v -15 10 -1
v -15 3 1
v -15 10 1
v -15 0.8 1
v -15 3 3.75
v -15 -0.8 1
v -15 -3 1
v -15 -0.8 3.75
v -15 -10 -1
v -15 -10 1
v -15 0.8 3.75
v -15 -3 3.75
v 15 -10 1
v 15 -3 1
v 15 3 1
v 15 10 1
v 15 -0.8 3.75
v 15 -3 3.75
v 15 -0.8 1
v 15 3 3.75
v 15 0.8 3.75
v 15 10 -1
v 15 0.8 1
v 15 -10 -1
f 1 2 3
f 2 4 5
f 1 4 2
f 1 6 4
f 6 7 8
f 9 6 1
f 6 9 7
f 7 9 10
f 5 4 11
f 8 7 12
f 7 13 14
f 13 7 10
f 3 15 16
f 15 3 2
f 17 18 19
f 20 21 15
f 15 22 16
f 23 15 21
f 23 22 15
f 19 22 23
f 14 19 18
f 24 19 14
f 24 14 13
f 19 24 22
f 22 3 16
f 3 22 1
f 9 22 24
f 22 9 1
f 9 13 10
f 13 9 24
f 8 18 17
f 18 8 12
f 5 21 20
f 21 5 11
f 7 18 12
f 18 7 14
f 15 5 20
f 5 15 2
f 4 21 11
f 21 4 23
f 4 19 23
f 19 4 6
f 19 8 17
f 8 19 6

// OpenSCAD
difference() {

union() {
cube([30,20,2],true);

translate([0,0,2])
cube([30,6,3.5],true);
}

translate([0,0,3])
cube([30,1.6,4],true);

}
